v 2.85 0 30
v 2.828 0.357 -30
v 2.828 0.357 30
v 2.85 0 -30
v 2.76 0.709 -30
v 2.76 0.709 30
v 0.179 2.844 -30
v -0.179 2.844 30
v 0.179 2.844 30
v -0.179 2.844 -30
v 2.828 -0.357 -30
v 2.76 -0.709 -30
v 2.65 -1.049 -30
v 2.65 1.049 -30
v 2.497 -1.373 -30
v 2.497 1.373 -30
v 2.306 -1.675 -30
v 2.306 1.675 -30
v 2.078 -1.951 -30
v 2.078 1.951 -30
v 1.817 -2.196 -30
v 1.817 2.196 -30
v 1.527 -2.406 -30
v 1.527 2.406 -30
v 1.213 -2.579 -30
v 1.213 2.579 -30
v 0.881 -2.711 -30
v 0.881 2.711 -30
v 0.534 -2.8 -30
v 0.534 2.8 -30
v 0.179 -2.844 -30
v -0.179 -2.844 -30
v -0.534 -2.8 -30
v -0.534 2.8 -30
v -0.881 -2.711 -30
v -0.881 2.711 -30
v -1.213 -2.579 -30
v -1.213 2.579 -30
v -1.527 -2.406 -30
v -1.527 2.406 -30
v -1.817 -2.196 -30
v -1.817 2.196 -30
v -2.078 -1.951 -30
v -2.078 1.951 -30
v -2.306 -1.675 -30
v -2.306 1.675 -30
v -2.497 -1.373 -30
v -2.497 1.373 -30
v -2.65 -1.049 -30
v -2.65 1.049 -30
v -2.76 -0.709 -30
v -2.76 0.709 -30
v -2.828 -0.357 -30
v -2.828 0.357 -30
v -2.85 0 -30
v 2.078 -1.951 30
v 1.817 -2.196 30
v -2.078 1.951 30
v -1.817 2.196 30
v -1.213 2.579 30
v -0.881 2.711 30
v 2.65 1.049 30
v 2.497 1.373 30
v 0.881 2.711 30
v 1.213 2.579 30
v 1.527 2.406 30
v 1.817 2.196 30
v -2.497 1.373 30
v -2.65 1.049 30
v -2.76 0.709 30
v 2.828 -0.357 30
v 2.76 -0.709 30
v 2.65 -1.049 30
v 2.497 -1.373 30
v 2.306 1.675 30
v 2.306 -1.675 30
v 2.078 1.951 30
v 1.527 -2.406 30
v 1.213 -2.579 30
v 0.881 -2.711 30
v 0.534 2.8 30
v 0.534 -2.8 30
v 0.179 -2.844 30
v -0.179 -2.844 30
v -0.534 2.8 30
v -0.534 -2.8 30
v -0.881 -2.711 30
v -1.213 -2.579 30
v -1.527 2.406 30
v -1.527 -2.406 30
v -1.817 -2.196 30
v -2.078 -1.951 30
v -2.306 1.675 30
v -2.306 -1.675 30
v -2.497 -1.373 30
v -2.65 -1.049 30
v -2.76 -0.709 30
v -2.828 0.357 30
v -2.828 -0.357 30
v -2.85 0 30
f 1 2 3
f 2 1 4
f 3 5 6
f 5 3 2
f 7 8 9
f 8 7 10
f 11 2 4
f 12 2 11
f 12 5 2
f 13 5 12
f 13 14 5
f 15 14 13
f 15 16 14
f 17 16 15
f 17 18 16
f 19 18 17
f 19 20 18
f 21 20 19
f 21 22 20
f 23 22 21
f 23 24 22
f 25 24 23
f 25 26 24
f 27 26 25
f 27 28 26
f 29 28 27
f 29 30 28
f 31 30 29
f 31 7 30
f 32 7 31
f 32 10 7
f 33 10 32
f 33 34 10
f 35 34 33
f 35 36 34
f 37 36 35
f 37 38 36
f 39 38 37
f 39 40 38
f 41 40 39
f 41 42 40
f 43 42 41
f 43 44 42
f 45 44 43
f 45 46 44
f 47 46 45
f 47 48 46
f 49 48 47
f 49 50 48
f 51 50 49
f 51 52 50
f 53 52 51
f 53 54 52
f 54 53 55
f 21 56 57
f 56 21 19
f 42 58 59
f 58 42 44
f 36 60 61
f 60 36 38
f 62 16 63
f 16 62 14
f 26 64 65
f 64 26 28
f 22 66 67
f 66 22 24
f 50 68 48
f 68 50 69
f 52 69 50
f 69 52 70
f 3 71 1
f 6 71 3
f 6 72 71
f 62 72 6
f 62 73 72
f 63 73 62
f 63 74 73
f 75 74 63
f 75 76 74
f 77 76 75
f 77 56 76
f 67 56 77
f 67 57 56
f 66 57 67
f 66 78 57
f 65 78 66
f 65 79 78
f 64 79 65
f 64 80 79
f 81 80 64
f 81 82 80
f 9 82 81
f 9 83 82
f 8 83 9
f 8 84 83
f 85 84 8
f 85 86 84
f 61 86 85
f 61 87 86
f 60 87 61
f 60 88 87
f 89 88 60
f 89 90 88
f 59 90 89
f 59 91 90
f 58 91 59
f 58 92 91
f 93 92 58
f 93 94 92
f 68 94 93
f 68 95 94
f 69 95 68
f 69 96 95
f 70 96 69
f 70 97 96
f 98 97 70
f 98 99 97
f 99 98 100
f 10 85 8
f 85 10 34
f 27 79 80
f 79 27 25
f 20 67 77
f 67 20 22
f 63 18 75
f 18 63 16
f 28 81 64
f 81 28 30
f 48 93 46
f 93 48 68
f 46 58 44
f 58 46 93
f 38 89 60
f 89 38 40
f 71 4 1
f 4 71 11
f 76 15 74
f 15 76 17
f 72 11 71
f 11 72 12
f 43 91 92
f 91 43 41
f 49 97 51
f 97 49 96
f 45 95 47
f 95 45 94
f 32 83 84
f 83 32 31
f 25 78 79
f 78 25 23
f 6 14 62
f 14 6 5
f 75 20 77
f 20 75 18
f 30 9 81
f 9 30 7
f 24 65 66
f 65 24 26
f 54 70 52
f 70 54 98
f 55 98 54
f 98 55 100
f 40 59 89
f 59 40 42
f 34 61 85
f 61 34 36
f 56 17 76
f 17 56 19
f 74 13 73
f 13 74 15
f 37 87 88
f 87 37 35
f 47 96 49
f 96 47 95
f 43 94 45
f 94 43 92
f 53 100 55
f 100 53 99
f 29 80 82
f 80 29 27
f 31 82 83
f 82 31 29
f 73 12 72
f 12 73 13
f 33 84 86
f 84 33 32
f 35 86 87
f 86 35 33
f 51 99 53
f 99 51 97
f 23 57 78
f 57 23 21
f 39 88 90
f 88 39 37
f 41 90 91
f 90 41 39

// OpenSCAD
$fn = 50;


difference() {
	union() {
		translate(v = [0, 0, -30.0000000000]) {
			cylinder(h = 60, r = 2.8500000000);
		}
	}
	union() {
		translate(v = [0, 0, -100.0000000000]) {
			cylinder(h = 200, r = 0);
		}
	}
}
